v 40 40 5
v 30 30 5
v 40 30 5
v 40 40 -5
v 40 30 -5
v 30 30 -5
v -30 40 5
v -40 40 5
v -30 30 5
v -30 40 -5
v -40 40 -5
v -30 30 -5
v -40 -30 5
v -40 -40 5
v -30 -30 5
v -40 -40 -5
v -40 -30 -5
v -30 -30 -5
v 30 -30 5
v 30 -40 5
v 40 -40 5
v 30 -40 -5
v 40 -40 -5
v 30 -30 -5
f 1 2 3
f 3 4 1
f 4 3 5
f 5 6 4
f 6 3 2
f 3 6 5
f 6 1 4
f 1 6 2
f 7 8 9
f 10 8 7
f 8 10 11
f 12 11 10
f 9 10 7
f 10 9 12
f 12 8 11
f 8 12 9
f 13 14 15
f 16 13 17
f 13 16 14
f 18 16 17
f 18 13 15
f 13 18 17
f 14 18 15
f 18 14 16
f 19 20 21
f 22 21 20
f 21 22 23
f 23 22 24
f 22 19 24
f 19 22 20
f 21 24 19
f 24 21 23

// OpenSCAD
// file: def.scad
block_size_3 = 19;
block_size_4 = 16;
block_size_5 = 14;
block_size_6 = 12.5;
block_size_7 = 11;
block_size_8 = 10;

inf = 1000;

round_radius = 1;
sticker_margin = 2.5;
sticker_round_radius = 0.75;

module _block(size) {
    minkowski() {
        cube([size - round_radius * 2, size - round_radius * 2, size - round_radius * 2], center = true);
        sphere(r = round_radius, $fn = 24);
    }
}

module _selector_0(size) {
    cube([size - 0.2, size - 0.2, size - 0.2], center = true);
}

module _sticker(size) {
    minkowski() {
        cube([size - sticker_margin * 2, size - sticker_margin * 2, 0.1], center = true);
        cylinder(r = sticker_round_radius, h = 0.1, $fn = 24);
    }
}

module _selector_corner_cw(size) {
    difference() {
        cube([size, size, size], center = true);
        rotate([0, -45, 0])
            translate([-inf, -inf, 0])
                cube([inf * 2, inf * 2, inf]);
        rotate([90, 0, 45])
            translate([-inf, -inf, 0])
                cube([inf * 2, inf * 2, inf]);
    }
}

module _selector_corner_ccw(size) {
    difference() {
        cube([size, size, size], center = true);
        rotate([45, 0, 0])
            translate([-inf, -inf, 0])
                cube([inf * 2, inf * 2, inf]);
        rotate([0, -90, -45])
            translate([-inf, -inf, 0])
                cube([inf * 2, inf * 2, inf]);
    }
}

module _selector_edge_cw(size) {
    difference() {
        cube([size, size, size], center = true);
        rotate([90, 0, 45])
            translate([-inf, -inf, 0])
                cube([inf * 2, inf * 2, inf]);
    }
}

module _selector_edge_ccw(size) {
    difference() {
        cube([size, size, size], center = true);
        rotate([0, -90, -45])
            translate([-inf, -inf, 0])
                cube([inf * 2, inf * 2, inf]);
    }
}
// main file
include <def.scad>

for (deg = [0 : 90 : 270])
    rotate([0, 0, deg])
        translate([block_size_8 * 3.5, block_size_8 * 3.5, 0])
            _selector_edge_ccw(block_size_8);
